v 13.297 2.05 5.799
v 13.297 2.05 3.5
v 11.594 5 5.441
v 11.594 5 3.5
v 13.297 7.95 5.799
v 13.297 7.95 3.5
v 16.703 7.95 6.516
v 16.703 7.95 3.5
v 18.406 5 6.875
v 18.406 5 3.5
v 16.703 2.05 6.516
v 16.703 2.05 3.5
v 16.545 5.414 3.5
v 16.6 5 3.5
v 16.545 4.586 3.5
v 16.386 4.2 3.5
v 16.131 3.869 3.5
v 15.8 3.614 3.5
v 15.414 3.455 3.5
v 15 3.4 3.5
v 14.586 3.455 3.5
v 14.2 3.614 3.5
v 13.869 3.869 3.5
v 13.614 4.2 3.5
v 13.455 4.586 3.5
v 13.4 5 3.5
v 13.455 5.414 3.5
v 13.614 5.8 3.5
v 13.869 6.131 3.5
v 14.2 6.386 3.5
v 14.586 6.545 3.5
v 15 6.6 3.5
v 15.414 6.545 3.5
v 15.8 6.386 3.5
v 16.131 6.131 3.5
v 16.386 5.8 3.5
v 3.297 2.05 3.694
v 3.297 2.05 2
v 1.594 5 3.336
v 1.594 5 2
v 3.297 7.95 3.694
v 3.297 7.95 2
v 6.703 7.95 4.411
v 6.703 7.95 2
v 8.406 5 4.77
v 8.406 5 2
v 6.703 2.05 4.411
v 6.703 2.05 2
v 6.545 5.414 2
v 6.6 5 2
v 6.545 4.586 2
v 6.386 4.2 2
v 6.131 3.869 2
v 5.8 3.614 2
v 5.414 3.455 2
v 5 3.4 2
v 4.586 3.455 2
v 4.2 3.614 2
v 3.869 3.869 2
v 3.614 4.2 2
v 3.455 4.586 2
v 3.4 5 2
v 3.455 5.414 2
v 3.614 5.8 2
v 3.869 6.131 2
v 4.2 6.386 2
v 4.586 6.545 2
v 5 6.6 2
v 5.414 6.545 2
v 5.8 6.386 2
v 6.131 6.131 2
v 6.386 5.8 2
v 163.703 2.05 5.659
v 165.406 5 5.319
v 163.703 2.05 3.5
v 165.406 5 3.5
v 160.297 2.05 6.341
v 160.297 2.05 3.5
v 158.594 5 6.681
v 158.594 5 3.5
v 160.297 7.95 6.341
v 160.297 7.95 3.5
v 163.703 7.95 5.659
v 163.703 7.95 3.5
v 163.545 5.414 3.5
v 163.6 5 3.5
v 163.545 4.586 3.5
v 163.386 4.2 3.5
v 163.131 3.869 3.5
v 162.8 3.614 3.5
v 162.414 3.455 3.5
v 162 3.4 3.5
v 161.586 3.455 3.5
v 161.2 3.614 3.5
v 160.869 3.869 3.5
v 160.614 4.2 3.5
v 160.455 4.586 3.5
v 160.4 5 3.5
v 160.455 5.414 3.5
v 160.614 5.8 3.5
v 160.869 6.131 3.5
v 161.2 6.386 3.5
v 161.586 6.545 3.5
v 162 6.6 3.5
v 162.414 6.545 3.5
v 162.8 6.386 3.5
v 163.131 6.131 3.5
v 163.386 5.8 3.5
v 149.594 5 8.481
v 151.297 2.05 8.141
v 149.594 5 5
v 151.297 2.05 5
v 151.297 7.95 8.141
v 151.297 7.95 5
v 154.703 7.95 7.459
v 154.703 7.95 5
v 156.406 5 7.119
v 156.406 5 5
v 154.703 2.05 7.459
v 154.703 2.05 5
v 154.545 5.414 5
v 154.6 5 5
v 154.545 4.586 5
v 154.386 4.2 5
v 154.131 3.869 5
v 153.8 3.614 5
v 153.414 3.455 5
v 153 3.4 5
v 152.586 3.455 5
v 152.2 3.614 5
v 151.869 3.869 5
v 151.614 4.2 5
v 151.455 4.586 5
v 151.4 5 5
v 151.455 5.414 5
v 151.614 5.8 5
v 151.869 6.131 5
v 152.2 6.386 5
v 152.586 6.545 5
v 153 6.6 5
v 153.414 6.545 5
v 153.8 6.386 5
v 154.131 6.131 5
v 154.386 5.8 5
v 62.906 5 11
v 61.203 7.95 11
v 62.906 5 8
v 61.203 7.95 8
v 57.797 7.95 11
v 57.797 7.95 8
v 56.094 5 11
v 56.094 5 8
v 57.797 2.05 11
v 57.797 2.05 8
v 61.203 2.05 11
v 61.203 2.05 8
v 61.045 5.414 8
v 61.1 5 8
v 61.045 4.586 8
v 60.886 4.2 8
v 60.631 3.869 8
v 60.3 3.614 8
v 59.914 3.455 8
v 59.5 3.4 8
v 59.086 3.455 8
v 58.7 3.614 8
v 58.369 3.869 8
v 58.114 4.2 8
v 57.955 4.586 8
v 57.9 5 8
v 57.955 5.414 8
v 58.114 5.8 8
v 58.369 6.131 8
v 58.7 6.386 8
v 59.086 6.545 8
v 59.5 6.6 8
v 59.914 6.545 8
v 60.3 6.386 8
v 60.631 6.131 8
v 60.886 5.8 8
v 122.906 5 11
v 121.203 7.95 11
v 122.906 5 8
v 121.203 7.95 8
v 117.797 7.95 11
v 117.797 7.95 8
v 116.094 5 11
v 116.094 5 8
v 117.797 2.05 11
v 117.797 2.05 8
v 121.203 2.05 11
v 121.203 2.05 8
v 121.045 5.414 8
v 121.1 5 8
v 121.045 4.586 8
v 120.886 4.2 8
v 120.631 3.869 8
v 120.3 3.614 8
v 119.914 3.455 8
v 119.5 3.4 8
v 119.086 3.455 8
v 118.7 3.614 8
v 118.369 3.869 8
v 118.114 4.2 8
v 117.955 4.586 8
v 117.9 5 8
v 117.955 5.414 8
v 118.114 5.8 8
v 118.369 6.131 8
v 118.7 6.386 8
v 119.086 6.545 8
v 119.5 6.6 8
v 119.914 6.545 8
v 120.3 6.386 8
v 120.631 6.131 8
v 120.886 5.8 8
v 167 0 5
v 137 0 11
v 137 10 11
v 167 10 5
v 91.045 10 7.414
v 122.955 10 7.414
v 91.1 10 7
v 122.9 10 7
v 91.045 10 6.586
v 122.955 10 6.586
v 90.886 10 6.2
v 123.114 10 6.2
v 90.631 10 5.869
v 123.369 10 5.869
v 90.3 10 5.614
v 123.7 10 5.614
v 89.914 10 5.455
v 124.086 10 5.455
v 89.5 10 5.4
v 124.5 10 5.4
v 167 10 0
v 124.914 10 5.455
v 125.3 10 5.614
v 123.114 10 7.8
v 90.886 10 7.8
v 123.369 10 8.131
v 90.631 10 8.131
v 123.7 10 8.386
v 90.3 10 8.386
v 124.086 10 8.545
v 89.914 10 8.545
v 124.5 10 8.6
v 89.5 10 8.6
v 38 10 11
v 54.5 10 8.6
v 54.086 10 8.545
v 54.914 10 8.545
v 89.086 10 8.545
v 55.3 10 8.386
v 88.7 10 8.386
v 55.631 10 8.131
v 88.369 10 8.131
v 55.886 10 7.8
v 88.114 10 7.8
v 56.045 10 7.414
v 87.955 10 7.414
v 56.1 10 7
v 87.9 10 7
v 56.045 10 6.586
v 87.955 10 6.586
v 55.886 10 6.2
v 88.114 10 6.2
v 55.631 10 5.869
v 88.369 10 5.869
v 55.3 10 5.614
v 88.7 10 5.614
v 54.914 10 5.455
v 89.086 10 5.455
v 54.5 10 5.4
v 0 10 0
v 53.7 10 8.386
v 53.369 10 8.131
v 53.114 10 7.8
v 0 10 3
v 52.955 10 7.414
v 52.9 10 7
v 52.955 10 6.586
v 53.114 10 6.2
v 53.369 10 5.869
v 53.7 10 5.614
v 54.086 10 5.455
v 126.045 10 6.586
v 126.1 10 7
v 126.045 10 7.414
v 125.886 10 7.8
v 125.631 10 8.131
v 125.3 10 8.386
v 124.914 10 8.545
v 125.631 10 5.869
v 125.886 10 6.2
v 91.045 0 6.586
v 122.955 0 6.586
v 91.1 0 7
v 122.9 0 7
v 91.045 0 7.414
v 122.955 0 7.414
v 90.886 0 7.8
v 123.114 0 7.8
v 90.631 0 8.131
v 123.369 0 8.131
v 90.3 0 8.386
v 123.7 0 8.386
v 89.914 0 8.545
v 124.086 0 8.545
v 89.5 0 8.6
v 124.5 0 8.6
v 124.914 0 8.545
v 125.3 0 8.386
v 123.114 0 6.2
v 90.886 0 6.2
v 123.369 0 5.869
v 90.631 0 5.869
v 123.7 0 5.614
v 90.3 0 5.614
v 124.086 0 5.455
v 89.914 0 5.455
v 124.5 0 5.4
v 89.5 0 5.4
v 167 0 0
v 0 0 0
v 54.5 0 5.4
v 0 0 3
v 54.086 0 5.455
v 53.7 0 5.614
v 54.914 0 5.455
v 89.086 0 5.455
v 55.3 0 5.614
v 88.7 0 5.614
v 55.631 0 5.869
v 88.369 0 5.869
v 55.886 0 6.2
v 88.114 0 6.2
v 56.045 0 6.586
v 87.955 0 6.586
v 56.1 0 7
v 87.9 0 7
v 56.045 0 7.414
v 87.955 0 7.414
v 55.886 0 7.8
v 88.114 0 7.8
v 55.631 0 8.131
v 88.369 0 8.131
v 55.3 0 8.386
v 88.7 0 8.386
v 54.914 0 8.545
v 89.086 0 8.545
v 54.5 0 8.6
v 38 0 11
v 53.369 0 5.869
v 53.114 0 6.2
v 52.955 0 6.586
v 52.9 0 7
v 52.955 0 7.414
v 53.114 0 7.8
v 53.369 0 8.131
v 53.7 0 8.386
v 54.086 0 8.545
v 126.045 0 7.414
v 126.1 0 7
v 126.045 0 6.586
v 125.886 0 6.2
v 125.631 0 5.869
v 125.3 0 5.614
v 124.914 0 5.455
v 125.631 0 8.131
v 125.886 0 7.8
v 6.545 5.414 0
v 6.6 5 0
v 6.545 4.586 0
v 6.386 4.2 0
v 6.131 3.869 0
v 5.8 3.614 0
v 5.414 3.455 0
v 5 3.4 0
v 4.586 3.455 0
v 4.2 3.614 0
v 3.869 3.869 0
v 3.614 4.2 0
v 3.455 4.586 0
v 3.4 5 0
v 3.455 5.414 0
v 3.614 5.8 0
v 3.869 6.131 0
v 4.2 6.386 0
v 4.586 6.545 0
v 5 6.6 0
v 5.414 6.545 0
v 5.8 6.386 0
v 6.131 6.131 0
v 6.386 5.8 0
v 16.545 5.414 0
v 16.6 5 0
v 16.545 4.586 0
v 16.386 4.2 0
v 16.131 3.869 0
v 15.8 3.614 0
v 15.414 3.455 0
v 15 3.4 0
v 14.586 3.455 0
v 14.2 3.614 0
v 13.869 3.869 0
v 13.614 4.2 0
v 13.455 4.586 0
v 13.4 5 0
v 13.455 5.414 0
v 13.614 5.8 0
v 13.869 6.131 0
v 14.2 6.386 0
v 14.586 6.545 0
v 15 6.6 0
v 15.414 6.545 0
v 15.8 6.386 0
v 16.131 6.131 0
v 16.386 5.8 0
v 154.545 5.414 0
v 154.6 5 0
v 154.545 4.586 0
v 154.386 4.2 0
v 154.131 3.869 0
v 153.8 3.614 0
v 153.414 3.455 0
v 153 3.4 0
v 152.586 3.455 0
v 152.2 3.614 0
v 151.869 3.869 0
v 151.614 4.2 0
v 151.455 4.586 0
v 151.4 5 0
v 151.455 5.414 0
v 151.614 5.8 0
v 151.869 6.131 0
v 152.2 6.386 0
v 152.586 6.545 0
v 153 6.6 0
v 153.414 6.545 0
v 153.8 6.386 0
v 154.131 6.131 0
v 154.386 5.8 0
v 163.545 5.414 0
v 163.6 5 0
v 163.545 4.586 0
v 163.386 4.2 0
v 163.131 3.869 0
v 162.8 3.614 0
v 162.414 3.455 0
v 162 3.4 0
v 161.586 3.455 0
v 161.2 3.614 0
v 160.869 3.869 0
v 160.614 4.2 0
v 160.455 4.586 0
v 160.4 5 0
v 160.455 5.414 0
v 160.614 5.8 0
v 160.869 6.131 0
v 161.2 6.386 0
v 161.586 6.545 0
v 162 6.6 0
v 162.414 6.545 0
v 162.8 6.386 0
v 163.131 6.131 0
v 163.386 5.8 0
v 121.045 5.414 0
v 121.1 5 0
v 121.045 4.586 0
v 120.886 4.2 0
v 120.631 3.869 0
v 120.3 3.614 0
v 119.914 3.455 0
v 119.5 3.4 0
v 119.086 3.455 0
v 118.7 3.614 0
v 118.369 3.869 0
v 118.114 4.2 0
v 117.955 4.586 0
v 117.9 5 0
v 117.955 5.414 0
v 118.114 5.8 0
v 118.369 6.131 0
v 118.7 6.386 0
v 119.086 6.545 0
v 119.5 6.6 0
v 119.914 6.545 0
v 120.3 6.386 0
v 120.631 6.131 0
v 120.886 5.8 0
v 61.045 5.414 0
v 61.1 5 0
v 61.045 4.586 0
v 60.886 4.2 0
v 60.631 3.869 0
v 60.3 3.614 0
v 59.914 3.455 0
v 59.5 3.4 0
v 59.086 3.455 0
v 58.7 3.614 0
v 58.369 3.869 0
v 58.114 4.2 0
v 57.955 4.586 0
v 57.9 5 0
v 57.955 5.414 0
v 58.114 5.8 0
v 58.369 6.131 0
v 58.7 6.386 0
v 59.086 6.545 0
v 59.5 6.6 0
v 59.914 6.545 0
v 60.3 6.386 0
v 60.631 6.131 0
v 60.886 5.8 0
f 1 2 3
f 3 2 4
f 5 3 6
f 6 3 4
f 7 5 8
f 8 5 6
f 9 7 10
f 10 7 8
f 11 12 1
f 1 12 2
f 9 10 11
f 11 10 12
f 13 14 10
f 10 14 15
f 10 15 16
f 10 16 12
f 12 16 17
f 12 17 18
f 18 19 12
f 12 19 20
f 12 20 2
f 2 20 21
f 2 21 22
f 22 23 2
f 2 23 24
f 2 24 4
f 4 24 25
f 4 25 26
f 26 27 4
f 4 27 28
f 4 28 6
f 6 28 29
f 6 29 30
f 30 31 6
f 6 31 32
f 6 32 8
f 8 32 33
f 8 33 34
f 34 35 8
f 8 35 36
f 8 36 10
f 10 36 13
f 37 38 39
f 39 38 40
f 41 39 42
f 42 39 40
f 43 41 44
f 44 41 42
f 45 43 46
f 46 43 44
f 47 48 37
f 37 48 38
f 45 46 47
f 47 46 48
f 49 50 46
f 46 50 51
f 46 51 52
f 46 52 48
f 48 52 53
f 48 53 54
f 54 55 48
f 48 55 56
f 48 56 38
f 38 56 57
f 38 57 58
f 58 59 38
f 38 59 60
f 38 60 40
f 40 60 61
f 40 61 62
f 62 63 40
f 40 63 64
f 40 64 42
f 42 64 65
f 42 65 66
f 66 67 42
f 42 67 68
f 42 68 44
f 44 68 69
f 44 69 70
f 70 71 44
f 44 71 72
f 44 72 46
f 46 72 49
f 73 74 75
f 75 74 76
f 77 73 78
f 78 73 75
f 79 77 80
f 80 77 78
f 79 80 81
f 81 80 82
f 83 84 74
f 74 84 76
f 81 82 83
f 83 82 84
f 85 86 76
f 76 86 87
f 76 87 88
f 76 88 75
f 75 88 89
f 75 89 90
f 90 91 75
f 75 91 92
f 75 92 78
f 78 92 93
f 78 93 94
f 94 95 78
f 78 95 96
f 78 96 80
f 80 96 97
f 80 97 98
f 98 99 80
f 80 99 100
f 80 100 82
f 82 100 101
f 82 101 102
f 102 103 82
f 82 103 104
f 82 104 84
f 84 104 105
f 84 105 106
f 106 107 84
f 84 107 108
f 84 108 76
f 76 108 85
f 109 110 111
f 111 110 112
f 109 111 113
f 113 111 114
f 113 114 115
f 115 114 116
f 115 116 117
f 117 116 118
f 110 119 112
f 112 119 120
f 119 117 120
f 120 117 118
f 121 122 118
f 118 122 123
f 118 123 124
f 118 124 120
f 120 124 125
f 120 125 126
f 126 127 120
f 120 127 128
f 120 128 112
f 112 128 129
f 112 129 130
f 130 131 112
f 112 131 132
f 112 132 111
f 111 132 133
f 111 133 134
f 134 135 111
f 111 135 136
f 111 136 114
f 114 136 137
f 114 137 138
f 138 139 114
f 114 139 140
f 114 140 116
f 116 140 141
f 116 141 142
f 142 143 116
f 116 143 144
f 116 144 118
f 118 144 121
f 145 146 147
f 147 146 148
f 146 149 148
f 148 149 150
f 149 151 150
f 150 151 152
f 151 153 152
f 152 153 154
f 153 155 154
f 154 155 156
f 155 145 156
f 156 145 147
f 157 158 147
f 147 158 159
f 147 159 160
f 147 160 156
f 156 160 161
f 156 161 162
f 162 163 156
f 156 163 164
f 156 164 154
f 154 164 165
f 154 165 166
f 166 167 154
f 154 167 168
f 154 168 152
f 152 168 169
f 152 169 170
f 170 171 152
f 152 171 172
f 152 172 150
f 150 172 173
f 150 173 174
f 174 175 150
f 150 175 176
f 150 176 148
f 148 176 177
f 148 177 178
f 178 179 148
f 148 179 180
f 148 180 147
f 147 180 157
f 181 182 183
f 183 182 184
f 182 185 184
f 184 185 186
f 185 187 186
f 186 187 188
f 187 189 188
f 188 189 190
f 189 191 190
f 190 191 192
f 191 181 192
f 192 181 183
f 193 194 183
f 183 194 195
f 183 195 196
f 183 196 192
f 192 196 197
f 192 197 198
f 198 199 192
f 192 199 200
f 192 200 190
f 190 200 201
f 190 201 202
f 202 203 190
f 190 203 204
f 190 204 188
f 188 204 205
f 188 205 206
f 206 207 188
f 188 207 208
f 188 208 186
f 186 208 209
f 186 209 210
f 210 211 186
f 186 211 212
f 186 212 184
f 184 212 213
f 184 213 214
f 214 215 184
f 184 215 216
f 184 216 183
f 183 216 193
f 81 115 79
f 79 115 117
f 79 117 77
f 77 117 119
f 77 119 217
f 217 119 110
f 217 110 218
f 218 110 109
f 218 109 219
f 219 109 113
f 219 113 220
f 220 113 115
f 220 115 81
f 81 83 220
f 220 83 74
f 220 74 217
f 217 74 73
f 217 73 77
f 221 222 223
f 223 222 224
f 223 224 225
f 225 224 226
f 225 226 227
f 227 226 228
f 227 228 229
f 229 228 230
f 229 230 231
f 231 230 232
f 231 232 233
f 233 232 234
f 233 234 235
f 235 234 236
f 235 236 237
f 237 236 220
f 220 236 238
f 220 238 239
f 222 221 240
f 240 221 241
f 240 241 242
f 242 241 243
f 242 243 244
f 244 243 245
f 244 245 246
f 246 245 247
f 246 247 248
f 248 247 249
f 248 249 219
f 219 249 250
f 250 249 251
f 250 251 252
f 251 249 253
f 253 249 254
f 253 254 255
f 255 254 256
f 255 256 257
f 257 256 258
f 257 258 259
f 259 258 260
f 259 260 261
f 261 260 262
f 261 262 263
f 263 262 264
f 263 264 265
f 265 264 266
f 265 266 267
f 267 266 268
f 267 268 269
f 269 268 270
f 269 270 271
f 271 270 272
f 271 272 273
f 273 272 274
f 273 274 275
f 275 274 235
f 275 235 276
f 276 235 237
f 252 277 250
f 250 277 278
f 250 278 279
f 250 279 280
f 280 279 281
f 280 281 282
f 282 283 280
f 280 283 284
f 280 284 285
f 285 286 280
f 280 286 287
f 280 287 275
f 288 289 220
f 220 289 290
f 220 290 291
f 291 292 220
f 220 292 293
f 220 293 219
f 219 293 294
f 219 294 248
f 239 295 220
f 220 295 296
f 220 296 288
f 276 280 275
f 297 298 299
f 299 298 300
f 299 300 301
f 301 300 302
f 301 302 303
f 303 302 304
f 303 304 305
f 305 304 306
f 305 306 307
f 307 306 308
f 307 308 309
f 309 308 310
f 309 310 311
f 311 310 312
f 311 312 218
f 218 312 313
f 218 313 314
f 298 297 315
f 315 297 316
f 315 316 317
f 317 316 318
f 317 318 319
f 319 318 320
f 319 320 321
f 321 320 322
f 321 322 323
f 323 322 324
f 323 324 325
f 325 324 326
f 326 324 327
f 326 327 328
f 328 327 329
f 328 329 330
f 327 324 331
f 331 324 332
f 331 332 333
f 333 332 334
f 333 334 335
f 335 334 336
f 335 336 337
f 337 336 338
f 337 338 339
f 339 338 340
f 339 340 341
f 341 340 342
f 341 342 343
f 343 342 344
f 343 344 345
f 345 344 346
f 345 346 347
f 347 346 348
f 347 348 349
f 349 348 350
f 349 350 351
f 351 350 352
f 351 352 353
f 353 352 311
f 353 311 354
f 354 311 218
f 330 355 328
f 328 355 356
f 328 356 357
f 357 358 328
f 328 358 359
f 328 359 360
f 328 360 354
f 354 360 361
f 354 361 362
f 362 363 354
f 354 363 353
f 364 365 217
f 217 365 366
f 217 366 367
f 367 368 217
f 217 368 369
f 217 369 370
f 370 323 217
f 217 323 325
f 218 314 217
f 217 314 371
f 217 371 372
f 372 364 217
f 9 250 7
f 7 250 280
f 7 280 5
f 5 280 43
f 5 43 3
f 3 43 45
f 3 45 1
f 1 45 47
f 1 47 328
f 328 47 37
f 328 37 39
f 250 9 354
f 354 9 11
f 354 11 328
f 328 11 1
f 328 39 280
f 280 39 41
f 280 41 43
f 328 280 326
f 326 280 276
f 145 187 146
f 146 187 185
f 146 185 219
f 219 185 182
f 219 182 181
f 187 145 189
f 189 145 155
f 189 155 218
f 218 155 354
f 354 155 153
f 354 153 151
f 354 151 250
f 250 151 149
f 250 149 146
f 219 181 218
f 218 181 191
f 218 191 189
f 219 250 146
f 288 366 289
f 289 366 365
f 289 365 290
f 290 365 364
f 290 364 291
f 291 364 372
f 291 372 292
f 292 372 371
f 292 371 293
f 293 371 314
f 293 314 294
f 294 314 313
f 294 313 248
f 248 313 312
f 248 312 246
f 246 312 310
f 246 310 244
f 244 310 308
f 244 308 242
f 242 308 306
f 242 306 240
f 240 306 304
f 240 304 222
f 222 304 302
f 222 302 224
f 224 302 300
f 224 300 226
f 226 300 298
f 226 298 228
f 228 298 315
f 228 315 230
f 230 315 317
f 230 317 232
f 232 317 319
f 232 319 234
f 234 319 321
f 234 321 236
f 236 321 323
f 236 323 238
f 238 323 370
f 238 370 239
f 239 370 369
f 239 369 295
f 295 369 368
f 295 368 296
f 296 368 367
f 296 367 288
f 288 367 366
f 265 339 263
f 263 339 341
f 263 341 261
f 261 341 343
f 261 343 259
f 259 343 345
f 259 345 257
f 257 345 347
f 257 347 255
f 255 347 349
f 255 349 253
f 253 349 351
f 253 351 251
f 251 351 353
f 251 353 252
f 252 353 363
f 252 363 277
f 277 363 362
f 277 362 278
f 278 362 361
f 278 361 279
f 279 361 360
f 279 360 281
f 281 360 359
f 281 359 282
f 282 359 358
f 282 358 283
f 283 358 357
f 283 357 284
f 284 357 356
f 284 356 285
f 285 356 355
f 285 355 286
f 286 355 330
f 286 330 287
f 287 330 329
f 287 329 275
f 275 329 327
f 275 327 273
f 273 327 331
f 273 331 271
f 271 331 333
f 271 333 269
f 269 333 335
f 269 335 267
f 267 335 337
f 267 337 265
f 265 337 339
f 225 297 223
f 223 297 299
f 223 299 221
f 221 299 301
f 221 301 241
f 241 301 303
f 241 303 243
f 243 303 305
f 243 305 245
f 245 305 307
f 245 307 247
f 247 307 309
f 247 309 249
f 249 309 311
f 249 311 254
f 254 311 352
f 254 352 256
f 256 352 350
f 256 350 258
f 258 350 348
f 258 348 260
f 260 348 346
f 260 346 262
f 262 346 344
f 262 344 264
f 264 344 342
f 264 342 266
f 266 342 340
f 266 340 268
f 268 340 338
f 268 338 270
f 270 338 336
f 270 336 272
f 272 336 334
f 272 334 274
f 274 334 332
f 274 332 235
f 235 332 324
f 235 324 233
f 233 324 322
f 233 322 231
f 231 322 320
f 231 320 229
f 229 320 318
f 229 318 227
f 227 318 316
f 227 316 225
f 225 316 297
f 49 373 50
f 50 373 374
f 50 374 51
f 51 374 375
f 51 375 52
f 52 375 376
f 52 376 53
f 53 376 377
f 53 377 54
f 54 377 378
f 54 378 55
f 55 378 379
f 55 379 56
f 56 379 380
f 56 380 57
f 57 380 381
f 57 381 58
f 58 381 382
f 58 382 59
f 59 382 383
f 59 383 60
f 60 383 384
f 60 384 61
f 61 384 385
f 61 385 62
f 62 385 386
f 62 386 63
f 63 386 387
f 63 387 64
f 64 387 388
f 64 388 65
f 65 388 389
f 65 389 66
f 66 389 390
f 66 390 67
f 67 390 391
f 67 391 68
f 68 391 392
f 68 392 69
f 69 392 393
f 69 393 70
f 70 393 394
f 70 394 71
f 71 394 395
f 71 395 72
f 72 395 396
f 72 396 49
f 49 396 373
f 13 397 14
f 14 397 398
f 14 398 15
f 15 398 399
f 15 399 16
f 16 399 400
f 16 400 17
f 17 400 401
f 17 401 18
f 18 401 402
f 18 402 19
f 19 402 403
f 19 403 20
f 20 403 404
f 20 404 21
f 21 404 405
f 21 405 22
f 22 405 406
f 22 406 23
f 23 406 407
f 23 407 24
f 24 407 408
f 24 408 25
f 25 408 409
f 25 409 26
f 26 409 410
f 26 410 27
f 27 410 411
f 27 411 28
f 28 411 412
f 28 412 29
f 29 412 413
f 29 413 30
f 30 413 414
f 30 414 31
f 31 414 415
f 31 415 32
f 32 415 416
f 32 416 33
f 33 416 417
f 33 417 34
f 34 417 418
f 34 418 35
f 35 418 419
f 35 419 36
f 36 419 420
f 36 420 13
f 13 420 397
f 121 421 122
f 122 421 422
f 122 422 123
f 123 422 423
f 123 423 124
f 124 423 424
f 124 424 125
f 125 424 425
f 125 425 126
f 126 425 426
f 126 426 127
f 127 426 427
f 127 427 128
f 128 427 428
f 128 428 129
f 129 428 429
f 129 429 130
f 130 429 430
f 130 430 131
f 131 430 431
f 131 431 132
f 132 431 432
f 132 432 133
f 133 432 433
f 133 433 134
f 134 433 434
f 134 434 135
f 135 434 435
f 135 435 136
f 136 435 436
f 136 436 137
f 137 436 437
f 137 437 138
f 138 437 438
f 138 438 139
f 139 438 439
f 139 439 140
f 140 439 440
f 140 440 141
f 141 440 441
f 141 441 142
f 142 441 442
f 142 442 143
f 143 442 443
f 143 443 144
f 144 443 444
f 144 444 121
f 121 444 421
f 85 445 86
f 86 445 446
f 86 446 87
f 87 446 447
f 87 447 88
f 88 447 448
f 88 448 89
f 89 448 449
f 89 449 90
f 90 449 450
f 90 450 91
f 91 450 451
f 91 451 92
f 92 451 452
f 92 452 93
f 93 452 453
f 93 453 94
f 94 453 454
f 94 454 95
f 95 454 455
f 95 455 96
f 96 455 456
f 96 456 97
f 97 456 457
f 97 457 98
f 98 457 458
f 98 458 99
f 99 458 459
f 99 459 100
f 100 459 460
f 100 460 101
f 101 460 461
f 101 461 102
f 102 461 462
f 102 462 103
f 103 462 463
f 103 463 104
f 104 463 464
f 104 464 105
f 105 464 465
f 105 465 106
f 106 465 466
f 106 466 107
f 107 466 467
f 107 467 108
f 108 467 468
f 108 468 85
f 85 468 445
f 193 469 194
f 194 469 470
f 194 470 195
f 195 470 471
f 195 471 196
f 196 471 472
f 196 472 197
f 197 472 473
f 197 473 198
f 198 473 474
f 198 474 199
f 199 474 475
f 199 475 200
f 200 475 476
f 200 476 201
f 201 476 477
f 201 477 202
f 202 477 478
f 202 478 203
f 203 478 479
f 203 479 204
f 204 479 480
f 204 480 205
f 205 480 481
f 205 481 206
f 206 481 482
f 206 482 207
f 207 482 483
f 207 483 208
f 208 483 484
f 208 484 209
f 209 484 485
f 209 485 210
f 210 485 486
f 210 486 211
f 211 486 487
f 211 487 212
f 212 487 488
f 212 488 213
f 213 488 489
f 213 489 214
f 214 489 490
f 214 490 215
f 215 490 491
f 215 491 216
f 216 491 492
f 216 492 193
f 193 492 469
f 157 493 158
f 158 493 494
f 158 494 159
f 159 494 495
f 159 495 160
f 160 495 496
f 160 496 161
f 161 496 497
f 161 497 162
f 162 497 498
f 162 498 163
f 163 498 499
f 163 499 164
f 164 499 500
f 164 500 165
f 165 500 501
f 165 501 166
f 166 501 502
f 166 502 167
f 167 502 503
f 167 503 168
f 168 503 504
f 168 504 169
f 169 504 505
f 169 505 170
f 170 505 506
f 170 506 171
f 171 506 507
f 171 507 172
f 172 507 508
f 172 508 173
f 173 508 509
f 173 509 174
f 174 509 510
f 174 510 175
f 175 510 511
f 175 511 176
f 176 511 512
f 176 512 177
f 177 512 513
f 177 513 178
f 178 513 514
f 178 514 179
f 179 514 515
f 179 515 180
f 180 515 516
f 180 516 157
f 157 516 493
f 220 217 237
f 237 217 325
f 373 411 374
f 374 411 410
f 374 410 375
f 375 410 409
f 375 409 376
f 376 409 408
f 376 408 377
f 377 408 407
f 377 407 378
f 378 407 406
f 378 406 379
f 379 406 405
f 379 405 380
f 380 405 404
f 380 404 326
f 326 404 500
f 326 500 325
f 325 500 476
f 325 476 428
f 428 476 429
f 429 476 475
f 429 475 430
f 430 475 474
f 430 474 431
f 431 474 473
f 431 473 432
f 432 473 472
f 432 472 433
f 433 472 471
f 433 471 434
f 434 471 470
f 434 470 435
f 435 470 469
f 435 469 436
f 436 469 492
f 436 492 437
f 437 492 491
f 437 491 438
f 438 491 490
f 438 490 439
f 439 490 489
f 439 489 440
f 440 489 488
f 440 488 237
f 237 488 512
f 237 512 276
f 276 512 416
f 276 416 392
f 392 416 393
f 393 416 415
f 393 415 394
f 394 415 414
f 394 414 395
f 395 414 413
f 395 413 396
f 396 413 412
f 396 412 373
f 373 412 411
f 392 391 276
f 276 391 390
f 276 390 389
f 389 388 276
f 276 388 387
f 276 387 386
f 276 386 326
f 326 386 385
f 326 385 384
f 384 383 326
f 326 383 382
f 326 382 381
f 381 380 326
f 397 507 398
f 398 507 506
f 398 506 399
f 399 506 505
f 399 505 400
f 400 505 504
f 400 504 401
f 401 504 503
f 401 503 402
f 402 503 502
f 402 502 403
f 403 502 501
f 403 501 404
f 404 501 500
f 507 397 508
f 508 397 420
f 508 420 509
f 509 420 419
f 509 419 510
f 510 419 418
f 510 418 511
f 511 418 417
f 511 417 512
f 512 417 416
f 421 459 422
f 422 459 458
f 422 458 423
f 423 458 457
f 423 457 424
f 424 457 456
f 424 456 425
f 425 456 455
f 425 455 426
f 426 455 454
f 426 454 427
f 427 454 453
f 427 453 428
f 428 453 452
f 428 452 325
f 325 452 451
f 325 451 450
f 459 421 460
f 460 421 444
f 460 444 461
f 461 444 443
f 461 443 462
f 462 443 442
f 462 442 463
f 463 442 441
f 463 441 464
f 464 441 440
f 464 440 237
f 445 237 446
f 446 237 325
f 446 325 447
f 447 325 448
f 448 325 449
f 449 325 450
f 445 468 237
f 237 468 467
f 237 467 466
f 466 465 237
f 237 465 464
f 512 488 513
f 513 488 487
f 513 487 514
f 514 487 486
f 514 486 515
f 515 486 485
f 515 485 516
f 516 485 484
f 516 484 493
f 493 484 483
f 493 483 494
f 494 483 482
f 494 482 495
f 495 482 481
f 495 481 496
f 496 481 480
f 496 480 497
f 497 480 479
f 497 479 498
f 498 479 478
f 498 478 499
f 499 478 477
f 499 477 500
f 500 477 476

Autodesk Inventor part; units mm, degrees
ref_plane "YZ Plane" through (0, 0, 0) normal (1, 0, 0) x (0, 1, 0)
ref_plane "XZ Plane" through (0, 0, 0) normal (0, 1, 0) x (-1, 0, 0)
ref_plane "XY Plane" through (0, 0, 0) normal (0, 0, 1) x (1, 0, 0)
sketch "Sketch1" plane through (0, 0, 0) normal (0, 0, 1) x (1, 0, 0)
  line L0 (0, 0) -> (167, 0)
  line L1 (167, 0) -> (167, 10)
  line L2 (167, 10) -> (0, 10)
  line L3 (0, 10) -> (0, 0)
  circle A0 centre (59.5, 5) radius 1.6
  circle A1 centre (119.5, 5) radius 1.6
  circle A2 centre (162, 5) radius 1.6
  circle A3 centre (153, 5) radius 1.6
  circle A4 centre (15, 5) radius 1.6
  circle A5 centre (5, 5) radius 1.6
  dimension "d1" = 10
  dimension "d2" = 90
  dimension "d4" = 3.2
  dimension "d6" = 3.2
  dimension "d7" = 3.2
  dimension "d8" = 60
  dimension "d9" = 42.5
  dimension "d26" = 3.2
  dimension "d27" = 33.5
  dimension "d28" = 3.2
  dimension "d29" = 44.5
  dimension "d32" = 15
  dimension "d33" = 5
  dimension "d61" = 3.2
  dimension "d62" = 10
  dimension "d63" = 9
ref_plane "Work Plane2" through (0, 0, 0) normal (0, -1, 0) x (1, 0, 0)
sketch "Sketch2" plane through (0, 0, 0) normal (0, -1, 0) x (1, 0, 0)
  circle A0 centre (54.5, 7) radius 1.6
  circle A1 centre (124.5, 7) radius 1.6
  circle A2 centre (89.5, 7) radius 1.6
  point P0 (0, 0)
  dimension "d13" = 3.2
  dimension "d15" = 3.2
  dimension "d16" = 70
  dimension "d17" = 3.2
  dimension "d18" = 35
  dimension "d64" = 54.5
  dimension "d65" = 35
ref_plane "Work Plane1" through (0, 0, 11) normal (0, 0, 1) x (1, 0, 0)
extrude "klocek" add sketch "Sketch1" along normal blind 11
ref_plane "Work Plane3" through (0, 0, 0) normal (0, -1, 0) x (1, 0, 0)
extrude "prowadzenie osi" cut sketch "Sketch2" against normal up to next
ref_plane "Work Plane4" through (0, 0, 0) normal (0, -1, 0) x (1, 0, 0)
sketch "Sketch7" plane through (0, 0, 0) normal (0, -1, 0) x (1, 0, 0)
  line L0 (0, 11) -> (0, 3)
  line L1 (0, 11) -> (167, 11) projected
  line L2 (0, 11) -> (38, 11)
  line L3 (38, 11) -> (0, 3)
  point P0 (0, -1.8333)
  dimension "d86" = 8
  dimension "d87" = 38
sketch "Sketch8" plane through (0, 0, 0) normal (0, -1, 0) x (1, 0, 0)
  line L0 (167, 0) -> (167, 11) projected
  line L1 (167, 11) -> (167, 5)
  line L2 (167, 11) -> (0, 11) projected
  line L3 (167, 11) -> (137, 11)
  line L4 (137, 11) -> (167, 5)
  point P0 (0, 0)
  point P1 (40.8333, 11)
  dimension "d80" = 6
  dimension "d81" = 30
extrude "przedni skos" cut sketch "Sketch7" against normal up to next
extrude "tylni skos" cut sketch "Sketch8" against normal up to next
ref_plane "Work Plane7" through (0, 0, 11) normal (0, 0, 1) x (1, 0, 0)
sketch "Sketch5" plane through (0, 0, 11) normal (0, 0, 1) x (1, 0, 0)
  line L0 (62.9064, 5) -> (61.2032, 2.05)
  line L1 (61.2032, 2.05) -> (57.7968, 2.05)
  line L2 (57.7968, 2.05) -> (56.0936, 5)
  line L3 (56.0936, 5) -> (57.7968, 7.95)
  line L4 (57.7968, 7.95) -> (61.2032, 7.95)
  line L5 (61.2032, 7.95) -> (62.9064, 5)
  line L6 (122.9064, 5) -> (121.2032, 2.05)
  line L7 (121.2032, 2.05) -> (117.7968, 2.05)
  line L8 (117.7968, 2.05) -> (116.0936, 5)
  line L9 (116.0936, 5) -> (117.7968, 7.95)
  line L10 (117.7968, 7.95) -> (121.2032, 7.95)
  line L11 (121.2032, 7.95) -> (122.9064, 5)
  point P0 (59.5, 5)
  point P1 (119.5, 5)
  point P2 (119.5, 5)
  dimension "d44" = 5.9
  dimension "d45" = 5.9
extrude "hex insert middle" cut sketch "Sketch5" against normal blind 3
ref_plane "Work Plane6" through (0, 0, 11) normal (0, 0, 1) x (1, 0, 0)
sketch "Sketch9" plane through (0, 0, 11) normal (0, 0, 1) x (1, 0, 0)
  line L0 (156.4064, 5) -> (154.7032, 2.05)
  line L1 (154.7032, 2.05) -> (151.2968, 2.05)
  line L2 (151.2968, 2.05) -> (149.5936, 5)
  line L3 (149.5936, 5) -> (151.2968, 7.95)
  line L4 (151.2968, 7.95) -> (154.7032, 7.95)
  line L5 (154.7032, 7.95) -> (156.4064, 5)
  point P0 (0, 0)
  point P1 (153, 5)
  point P2 (153, 5)
  dimension "d51" = 5.9
extrude "hex insert rear 1" cut sketch "Sketch9" against normal blind 6
ref_plane "Work Plane5" through (0, 0, 11) normal (0, 0, 1) x (1, 0, 0)
sketch "Sketch10" plane through (0, 0, 11) normal (0, 0, 1) x (1, 0, 0)
  line L0 (160.2968, 7.95) -> (163.7032, 7.95)
  line L1 (163.7032, 7.95) -> (165.4064, 5)
  line L2 (165.4064, 5) -> (163.7032, 2.05)
  line L3 (163.7032, 2.05) -> (160.2968, 2.05)
  line L4 (160.2968, 2.05) -> (158.5936, 5)
  line L5 (158.5936, 5) -> (160.2968, 7.95)
  point P0 (0, 0)
  point P1 (162, 5)
  point P2 (162, 5)
  dimension "d72" = 5.9
extrude "hex insert rear 2" cut sketch "Sketch10" against normal blind 7.5
sketch "Sketch13" plane through (0, 0, 11) normal (0, 0, 1) x (1, 0, 0)
  circle A0 centre (5, 5) radius 1.6 projected
  line L0 (8.4064, 5) -> (6.7032, 2.05)
  line L1 (6.7032, 2.05) -> (3.2968, 2.05)
  line L2 (3.2968, 2.05) -> (1.5936, 5)
  line L3 (1.5936, 5) -> (3.2968, 7.95)
  line L4 (3.2968, 7.95) -> (6.7032, 7.95)
  line L5 (6.7032, 7.95) -> (8.4064, 5)
  point P0 (0, 0)
  dimension "d90" = 5.9
extrude "Extrusion18" cut sketch "Sketch13" against normal blind 9
sketch "Sketch16" plane through (0, 0, 11) normal (0, 0, 1) x (1, 0, 0)
  circle A0 centre (15, 5) radius 1.6 projected
  line L0 (18.4064, 5) -> (16.7032, 2.05)
  line L1 (16.7032, 2.05) -> (13.2968, 2.05)
  line L2 (13.2968, 2.05) -> (11.5936, 5)
  line L3 (11.5936, 5) -> (13.2968, 7.95)
  line L4 (13.2968, 7.95) -> (16.7032, 7.95)
  line L5 (16.7032, 7.95) -> (18.4064, 5)
  point P0 (0, 0)
  dimension "d93" = 5.9
extrude "Extrusion19" cut sketch "Sketch16" against normal blind 7.5
properties part number "new_wheel_support_v3"
